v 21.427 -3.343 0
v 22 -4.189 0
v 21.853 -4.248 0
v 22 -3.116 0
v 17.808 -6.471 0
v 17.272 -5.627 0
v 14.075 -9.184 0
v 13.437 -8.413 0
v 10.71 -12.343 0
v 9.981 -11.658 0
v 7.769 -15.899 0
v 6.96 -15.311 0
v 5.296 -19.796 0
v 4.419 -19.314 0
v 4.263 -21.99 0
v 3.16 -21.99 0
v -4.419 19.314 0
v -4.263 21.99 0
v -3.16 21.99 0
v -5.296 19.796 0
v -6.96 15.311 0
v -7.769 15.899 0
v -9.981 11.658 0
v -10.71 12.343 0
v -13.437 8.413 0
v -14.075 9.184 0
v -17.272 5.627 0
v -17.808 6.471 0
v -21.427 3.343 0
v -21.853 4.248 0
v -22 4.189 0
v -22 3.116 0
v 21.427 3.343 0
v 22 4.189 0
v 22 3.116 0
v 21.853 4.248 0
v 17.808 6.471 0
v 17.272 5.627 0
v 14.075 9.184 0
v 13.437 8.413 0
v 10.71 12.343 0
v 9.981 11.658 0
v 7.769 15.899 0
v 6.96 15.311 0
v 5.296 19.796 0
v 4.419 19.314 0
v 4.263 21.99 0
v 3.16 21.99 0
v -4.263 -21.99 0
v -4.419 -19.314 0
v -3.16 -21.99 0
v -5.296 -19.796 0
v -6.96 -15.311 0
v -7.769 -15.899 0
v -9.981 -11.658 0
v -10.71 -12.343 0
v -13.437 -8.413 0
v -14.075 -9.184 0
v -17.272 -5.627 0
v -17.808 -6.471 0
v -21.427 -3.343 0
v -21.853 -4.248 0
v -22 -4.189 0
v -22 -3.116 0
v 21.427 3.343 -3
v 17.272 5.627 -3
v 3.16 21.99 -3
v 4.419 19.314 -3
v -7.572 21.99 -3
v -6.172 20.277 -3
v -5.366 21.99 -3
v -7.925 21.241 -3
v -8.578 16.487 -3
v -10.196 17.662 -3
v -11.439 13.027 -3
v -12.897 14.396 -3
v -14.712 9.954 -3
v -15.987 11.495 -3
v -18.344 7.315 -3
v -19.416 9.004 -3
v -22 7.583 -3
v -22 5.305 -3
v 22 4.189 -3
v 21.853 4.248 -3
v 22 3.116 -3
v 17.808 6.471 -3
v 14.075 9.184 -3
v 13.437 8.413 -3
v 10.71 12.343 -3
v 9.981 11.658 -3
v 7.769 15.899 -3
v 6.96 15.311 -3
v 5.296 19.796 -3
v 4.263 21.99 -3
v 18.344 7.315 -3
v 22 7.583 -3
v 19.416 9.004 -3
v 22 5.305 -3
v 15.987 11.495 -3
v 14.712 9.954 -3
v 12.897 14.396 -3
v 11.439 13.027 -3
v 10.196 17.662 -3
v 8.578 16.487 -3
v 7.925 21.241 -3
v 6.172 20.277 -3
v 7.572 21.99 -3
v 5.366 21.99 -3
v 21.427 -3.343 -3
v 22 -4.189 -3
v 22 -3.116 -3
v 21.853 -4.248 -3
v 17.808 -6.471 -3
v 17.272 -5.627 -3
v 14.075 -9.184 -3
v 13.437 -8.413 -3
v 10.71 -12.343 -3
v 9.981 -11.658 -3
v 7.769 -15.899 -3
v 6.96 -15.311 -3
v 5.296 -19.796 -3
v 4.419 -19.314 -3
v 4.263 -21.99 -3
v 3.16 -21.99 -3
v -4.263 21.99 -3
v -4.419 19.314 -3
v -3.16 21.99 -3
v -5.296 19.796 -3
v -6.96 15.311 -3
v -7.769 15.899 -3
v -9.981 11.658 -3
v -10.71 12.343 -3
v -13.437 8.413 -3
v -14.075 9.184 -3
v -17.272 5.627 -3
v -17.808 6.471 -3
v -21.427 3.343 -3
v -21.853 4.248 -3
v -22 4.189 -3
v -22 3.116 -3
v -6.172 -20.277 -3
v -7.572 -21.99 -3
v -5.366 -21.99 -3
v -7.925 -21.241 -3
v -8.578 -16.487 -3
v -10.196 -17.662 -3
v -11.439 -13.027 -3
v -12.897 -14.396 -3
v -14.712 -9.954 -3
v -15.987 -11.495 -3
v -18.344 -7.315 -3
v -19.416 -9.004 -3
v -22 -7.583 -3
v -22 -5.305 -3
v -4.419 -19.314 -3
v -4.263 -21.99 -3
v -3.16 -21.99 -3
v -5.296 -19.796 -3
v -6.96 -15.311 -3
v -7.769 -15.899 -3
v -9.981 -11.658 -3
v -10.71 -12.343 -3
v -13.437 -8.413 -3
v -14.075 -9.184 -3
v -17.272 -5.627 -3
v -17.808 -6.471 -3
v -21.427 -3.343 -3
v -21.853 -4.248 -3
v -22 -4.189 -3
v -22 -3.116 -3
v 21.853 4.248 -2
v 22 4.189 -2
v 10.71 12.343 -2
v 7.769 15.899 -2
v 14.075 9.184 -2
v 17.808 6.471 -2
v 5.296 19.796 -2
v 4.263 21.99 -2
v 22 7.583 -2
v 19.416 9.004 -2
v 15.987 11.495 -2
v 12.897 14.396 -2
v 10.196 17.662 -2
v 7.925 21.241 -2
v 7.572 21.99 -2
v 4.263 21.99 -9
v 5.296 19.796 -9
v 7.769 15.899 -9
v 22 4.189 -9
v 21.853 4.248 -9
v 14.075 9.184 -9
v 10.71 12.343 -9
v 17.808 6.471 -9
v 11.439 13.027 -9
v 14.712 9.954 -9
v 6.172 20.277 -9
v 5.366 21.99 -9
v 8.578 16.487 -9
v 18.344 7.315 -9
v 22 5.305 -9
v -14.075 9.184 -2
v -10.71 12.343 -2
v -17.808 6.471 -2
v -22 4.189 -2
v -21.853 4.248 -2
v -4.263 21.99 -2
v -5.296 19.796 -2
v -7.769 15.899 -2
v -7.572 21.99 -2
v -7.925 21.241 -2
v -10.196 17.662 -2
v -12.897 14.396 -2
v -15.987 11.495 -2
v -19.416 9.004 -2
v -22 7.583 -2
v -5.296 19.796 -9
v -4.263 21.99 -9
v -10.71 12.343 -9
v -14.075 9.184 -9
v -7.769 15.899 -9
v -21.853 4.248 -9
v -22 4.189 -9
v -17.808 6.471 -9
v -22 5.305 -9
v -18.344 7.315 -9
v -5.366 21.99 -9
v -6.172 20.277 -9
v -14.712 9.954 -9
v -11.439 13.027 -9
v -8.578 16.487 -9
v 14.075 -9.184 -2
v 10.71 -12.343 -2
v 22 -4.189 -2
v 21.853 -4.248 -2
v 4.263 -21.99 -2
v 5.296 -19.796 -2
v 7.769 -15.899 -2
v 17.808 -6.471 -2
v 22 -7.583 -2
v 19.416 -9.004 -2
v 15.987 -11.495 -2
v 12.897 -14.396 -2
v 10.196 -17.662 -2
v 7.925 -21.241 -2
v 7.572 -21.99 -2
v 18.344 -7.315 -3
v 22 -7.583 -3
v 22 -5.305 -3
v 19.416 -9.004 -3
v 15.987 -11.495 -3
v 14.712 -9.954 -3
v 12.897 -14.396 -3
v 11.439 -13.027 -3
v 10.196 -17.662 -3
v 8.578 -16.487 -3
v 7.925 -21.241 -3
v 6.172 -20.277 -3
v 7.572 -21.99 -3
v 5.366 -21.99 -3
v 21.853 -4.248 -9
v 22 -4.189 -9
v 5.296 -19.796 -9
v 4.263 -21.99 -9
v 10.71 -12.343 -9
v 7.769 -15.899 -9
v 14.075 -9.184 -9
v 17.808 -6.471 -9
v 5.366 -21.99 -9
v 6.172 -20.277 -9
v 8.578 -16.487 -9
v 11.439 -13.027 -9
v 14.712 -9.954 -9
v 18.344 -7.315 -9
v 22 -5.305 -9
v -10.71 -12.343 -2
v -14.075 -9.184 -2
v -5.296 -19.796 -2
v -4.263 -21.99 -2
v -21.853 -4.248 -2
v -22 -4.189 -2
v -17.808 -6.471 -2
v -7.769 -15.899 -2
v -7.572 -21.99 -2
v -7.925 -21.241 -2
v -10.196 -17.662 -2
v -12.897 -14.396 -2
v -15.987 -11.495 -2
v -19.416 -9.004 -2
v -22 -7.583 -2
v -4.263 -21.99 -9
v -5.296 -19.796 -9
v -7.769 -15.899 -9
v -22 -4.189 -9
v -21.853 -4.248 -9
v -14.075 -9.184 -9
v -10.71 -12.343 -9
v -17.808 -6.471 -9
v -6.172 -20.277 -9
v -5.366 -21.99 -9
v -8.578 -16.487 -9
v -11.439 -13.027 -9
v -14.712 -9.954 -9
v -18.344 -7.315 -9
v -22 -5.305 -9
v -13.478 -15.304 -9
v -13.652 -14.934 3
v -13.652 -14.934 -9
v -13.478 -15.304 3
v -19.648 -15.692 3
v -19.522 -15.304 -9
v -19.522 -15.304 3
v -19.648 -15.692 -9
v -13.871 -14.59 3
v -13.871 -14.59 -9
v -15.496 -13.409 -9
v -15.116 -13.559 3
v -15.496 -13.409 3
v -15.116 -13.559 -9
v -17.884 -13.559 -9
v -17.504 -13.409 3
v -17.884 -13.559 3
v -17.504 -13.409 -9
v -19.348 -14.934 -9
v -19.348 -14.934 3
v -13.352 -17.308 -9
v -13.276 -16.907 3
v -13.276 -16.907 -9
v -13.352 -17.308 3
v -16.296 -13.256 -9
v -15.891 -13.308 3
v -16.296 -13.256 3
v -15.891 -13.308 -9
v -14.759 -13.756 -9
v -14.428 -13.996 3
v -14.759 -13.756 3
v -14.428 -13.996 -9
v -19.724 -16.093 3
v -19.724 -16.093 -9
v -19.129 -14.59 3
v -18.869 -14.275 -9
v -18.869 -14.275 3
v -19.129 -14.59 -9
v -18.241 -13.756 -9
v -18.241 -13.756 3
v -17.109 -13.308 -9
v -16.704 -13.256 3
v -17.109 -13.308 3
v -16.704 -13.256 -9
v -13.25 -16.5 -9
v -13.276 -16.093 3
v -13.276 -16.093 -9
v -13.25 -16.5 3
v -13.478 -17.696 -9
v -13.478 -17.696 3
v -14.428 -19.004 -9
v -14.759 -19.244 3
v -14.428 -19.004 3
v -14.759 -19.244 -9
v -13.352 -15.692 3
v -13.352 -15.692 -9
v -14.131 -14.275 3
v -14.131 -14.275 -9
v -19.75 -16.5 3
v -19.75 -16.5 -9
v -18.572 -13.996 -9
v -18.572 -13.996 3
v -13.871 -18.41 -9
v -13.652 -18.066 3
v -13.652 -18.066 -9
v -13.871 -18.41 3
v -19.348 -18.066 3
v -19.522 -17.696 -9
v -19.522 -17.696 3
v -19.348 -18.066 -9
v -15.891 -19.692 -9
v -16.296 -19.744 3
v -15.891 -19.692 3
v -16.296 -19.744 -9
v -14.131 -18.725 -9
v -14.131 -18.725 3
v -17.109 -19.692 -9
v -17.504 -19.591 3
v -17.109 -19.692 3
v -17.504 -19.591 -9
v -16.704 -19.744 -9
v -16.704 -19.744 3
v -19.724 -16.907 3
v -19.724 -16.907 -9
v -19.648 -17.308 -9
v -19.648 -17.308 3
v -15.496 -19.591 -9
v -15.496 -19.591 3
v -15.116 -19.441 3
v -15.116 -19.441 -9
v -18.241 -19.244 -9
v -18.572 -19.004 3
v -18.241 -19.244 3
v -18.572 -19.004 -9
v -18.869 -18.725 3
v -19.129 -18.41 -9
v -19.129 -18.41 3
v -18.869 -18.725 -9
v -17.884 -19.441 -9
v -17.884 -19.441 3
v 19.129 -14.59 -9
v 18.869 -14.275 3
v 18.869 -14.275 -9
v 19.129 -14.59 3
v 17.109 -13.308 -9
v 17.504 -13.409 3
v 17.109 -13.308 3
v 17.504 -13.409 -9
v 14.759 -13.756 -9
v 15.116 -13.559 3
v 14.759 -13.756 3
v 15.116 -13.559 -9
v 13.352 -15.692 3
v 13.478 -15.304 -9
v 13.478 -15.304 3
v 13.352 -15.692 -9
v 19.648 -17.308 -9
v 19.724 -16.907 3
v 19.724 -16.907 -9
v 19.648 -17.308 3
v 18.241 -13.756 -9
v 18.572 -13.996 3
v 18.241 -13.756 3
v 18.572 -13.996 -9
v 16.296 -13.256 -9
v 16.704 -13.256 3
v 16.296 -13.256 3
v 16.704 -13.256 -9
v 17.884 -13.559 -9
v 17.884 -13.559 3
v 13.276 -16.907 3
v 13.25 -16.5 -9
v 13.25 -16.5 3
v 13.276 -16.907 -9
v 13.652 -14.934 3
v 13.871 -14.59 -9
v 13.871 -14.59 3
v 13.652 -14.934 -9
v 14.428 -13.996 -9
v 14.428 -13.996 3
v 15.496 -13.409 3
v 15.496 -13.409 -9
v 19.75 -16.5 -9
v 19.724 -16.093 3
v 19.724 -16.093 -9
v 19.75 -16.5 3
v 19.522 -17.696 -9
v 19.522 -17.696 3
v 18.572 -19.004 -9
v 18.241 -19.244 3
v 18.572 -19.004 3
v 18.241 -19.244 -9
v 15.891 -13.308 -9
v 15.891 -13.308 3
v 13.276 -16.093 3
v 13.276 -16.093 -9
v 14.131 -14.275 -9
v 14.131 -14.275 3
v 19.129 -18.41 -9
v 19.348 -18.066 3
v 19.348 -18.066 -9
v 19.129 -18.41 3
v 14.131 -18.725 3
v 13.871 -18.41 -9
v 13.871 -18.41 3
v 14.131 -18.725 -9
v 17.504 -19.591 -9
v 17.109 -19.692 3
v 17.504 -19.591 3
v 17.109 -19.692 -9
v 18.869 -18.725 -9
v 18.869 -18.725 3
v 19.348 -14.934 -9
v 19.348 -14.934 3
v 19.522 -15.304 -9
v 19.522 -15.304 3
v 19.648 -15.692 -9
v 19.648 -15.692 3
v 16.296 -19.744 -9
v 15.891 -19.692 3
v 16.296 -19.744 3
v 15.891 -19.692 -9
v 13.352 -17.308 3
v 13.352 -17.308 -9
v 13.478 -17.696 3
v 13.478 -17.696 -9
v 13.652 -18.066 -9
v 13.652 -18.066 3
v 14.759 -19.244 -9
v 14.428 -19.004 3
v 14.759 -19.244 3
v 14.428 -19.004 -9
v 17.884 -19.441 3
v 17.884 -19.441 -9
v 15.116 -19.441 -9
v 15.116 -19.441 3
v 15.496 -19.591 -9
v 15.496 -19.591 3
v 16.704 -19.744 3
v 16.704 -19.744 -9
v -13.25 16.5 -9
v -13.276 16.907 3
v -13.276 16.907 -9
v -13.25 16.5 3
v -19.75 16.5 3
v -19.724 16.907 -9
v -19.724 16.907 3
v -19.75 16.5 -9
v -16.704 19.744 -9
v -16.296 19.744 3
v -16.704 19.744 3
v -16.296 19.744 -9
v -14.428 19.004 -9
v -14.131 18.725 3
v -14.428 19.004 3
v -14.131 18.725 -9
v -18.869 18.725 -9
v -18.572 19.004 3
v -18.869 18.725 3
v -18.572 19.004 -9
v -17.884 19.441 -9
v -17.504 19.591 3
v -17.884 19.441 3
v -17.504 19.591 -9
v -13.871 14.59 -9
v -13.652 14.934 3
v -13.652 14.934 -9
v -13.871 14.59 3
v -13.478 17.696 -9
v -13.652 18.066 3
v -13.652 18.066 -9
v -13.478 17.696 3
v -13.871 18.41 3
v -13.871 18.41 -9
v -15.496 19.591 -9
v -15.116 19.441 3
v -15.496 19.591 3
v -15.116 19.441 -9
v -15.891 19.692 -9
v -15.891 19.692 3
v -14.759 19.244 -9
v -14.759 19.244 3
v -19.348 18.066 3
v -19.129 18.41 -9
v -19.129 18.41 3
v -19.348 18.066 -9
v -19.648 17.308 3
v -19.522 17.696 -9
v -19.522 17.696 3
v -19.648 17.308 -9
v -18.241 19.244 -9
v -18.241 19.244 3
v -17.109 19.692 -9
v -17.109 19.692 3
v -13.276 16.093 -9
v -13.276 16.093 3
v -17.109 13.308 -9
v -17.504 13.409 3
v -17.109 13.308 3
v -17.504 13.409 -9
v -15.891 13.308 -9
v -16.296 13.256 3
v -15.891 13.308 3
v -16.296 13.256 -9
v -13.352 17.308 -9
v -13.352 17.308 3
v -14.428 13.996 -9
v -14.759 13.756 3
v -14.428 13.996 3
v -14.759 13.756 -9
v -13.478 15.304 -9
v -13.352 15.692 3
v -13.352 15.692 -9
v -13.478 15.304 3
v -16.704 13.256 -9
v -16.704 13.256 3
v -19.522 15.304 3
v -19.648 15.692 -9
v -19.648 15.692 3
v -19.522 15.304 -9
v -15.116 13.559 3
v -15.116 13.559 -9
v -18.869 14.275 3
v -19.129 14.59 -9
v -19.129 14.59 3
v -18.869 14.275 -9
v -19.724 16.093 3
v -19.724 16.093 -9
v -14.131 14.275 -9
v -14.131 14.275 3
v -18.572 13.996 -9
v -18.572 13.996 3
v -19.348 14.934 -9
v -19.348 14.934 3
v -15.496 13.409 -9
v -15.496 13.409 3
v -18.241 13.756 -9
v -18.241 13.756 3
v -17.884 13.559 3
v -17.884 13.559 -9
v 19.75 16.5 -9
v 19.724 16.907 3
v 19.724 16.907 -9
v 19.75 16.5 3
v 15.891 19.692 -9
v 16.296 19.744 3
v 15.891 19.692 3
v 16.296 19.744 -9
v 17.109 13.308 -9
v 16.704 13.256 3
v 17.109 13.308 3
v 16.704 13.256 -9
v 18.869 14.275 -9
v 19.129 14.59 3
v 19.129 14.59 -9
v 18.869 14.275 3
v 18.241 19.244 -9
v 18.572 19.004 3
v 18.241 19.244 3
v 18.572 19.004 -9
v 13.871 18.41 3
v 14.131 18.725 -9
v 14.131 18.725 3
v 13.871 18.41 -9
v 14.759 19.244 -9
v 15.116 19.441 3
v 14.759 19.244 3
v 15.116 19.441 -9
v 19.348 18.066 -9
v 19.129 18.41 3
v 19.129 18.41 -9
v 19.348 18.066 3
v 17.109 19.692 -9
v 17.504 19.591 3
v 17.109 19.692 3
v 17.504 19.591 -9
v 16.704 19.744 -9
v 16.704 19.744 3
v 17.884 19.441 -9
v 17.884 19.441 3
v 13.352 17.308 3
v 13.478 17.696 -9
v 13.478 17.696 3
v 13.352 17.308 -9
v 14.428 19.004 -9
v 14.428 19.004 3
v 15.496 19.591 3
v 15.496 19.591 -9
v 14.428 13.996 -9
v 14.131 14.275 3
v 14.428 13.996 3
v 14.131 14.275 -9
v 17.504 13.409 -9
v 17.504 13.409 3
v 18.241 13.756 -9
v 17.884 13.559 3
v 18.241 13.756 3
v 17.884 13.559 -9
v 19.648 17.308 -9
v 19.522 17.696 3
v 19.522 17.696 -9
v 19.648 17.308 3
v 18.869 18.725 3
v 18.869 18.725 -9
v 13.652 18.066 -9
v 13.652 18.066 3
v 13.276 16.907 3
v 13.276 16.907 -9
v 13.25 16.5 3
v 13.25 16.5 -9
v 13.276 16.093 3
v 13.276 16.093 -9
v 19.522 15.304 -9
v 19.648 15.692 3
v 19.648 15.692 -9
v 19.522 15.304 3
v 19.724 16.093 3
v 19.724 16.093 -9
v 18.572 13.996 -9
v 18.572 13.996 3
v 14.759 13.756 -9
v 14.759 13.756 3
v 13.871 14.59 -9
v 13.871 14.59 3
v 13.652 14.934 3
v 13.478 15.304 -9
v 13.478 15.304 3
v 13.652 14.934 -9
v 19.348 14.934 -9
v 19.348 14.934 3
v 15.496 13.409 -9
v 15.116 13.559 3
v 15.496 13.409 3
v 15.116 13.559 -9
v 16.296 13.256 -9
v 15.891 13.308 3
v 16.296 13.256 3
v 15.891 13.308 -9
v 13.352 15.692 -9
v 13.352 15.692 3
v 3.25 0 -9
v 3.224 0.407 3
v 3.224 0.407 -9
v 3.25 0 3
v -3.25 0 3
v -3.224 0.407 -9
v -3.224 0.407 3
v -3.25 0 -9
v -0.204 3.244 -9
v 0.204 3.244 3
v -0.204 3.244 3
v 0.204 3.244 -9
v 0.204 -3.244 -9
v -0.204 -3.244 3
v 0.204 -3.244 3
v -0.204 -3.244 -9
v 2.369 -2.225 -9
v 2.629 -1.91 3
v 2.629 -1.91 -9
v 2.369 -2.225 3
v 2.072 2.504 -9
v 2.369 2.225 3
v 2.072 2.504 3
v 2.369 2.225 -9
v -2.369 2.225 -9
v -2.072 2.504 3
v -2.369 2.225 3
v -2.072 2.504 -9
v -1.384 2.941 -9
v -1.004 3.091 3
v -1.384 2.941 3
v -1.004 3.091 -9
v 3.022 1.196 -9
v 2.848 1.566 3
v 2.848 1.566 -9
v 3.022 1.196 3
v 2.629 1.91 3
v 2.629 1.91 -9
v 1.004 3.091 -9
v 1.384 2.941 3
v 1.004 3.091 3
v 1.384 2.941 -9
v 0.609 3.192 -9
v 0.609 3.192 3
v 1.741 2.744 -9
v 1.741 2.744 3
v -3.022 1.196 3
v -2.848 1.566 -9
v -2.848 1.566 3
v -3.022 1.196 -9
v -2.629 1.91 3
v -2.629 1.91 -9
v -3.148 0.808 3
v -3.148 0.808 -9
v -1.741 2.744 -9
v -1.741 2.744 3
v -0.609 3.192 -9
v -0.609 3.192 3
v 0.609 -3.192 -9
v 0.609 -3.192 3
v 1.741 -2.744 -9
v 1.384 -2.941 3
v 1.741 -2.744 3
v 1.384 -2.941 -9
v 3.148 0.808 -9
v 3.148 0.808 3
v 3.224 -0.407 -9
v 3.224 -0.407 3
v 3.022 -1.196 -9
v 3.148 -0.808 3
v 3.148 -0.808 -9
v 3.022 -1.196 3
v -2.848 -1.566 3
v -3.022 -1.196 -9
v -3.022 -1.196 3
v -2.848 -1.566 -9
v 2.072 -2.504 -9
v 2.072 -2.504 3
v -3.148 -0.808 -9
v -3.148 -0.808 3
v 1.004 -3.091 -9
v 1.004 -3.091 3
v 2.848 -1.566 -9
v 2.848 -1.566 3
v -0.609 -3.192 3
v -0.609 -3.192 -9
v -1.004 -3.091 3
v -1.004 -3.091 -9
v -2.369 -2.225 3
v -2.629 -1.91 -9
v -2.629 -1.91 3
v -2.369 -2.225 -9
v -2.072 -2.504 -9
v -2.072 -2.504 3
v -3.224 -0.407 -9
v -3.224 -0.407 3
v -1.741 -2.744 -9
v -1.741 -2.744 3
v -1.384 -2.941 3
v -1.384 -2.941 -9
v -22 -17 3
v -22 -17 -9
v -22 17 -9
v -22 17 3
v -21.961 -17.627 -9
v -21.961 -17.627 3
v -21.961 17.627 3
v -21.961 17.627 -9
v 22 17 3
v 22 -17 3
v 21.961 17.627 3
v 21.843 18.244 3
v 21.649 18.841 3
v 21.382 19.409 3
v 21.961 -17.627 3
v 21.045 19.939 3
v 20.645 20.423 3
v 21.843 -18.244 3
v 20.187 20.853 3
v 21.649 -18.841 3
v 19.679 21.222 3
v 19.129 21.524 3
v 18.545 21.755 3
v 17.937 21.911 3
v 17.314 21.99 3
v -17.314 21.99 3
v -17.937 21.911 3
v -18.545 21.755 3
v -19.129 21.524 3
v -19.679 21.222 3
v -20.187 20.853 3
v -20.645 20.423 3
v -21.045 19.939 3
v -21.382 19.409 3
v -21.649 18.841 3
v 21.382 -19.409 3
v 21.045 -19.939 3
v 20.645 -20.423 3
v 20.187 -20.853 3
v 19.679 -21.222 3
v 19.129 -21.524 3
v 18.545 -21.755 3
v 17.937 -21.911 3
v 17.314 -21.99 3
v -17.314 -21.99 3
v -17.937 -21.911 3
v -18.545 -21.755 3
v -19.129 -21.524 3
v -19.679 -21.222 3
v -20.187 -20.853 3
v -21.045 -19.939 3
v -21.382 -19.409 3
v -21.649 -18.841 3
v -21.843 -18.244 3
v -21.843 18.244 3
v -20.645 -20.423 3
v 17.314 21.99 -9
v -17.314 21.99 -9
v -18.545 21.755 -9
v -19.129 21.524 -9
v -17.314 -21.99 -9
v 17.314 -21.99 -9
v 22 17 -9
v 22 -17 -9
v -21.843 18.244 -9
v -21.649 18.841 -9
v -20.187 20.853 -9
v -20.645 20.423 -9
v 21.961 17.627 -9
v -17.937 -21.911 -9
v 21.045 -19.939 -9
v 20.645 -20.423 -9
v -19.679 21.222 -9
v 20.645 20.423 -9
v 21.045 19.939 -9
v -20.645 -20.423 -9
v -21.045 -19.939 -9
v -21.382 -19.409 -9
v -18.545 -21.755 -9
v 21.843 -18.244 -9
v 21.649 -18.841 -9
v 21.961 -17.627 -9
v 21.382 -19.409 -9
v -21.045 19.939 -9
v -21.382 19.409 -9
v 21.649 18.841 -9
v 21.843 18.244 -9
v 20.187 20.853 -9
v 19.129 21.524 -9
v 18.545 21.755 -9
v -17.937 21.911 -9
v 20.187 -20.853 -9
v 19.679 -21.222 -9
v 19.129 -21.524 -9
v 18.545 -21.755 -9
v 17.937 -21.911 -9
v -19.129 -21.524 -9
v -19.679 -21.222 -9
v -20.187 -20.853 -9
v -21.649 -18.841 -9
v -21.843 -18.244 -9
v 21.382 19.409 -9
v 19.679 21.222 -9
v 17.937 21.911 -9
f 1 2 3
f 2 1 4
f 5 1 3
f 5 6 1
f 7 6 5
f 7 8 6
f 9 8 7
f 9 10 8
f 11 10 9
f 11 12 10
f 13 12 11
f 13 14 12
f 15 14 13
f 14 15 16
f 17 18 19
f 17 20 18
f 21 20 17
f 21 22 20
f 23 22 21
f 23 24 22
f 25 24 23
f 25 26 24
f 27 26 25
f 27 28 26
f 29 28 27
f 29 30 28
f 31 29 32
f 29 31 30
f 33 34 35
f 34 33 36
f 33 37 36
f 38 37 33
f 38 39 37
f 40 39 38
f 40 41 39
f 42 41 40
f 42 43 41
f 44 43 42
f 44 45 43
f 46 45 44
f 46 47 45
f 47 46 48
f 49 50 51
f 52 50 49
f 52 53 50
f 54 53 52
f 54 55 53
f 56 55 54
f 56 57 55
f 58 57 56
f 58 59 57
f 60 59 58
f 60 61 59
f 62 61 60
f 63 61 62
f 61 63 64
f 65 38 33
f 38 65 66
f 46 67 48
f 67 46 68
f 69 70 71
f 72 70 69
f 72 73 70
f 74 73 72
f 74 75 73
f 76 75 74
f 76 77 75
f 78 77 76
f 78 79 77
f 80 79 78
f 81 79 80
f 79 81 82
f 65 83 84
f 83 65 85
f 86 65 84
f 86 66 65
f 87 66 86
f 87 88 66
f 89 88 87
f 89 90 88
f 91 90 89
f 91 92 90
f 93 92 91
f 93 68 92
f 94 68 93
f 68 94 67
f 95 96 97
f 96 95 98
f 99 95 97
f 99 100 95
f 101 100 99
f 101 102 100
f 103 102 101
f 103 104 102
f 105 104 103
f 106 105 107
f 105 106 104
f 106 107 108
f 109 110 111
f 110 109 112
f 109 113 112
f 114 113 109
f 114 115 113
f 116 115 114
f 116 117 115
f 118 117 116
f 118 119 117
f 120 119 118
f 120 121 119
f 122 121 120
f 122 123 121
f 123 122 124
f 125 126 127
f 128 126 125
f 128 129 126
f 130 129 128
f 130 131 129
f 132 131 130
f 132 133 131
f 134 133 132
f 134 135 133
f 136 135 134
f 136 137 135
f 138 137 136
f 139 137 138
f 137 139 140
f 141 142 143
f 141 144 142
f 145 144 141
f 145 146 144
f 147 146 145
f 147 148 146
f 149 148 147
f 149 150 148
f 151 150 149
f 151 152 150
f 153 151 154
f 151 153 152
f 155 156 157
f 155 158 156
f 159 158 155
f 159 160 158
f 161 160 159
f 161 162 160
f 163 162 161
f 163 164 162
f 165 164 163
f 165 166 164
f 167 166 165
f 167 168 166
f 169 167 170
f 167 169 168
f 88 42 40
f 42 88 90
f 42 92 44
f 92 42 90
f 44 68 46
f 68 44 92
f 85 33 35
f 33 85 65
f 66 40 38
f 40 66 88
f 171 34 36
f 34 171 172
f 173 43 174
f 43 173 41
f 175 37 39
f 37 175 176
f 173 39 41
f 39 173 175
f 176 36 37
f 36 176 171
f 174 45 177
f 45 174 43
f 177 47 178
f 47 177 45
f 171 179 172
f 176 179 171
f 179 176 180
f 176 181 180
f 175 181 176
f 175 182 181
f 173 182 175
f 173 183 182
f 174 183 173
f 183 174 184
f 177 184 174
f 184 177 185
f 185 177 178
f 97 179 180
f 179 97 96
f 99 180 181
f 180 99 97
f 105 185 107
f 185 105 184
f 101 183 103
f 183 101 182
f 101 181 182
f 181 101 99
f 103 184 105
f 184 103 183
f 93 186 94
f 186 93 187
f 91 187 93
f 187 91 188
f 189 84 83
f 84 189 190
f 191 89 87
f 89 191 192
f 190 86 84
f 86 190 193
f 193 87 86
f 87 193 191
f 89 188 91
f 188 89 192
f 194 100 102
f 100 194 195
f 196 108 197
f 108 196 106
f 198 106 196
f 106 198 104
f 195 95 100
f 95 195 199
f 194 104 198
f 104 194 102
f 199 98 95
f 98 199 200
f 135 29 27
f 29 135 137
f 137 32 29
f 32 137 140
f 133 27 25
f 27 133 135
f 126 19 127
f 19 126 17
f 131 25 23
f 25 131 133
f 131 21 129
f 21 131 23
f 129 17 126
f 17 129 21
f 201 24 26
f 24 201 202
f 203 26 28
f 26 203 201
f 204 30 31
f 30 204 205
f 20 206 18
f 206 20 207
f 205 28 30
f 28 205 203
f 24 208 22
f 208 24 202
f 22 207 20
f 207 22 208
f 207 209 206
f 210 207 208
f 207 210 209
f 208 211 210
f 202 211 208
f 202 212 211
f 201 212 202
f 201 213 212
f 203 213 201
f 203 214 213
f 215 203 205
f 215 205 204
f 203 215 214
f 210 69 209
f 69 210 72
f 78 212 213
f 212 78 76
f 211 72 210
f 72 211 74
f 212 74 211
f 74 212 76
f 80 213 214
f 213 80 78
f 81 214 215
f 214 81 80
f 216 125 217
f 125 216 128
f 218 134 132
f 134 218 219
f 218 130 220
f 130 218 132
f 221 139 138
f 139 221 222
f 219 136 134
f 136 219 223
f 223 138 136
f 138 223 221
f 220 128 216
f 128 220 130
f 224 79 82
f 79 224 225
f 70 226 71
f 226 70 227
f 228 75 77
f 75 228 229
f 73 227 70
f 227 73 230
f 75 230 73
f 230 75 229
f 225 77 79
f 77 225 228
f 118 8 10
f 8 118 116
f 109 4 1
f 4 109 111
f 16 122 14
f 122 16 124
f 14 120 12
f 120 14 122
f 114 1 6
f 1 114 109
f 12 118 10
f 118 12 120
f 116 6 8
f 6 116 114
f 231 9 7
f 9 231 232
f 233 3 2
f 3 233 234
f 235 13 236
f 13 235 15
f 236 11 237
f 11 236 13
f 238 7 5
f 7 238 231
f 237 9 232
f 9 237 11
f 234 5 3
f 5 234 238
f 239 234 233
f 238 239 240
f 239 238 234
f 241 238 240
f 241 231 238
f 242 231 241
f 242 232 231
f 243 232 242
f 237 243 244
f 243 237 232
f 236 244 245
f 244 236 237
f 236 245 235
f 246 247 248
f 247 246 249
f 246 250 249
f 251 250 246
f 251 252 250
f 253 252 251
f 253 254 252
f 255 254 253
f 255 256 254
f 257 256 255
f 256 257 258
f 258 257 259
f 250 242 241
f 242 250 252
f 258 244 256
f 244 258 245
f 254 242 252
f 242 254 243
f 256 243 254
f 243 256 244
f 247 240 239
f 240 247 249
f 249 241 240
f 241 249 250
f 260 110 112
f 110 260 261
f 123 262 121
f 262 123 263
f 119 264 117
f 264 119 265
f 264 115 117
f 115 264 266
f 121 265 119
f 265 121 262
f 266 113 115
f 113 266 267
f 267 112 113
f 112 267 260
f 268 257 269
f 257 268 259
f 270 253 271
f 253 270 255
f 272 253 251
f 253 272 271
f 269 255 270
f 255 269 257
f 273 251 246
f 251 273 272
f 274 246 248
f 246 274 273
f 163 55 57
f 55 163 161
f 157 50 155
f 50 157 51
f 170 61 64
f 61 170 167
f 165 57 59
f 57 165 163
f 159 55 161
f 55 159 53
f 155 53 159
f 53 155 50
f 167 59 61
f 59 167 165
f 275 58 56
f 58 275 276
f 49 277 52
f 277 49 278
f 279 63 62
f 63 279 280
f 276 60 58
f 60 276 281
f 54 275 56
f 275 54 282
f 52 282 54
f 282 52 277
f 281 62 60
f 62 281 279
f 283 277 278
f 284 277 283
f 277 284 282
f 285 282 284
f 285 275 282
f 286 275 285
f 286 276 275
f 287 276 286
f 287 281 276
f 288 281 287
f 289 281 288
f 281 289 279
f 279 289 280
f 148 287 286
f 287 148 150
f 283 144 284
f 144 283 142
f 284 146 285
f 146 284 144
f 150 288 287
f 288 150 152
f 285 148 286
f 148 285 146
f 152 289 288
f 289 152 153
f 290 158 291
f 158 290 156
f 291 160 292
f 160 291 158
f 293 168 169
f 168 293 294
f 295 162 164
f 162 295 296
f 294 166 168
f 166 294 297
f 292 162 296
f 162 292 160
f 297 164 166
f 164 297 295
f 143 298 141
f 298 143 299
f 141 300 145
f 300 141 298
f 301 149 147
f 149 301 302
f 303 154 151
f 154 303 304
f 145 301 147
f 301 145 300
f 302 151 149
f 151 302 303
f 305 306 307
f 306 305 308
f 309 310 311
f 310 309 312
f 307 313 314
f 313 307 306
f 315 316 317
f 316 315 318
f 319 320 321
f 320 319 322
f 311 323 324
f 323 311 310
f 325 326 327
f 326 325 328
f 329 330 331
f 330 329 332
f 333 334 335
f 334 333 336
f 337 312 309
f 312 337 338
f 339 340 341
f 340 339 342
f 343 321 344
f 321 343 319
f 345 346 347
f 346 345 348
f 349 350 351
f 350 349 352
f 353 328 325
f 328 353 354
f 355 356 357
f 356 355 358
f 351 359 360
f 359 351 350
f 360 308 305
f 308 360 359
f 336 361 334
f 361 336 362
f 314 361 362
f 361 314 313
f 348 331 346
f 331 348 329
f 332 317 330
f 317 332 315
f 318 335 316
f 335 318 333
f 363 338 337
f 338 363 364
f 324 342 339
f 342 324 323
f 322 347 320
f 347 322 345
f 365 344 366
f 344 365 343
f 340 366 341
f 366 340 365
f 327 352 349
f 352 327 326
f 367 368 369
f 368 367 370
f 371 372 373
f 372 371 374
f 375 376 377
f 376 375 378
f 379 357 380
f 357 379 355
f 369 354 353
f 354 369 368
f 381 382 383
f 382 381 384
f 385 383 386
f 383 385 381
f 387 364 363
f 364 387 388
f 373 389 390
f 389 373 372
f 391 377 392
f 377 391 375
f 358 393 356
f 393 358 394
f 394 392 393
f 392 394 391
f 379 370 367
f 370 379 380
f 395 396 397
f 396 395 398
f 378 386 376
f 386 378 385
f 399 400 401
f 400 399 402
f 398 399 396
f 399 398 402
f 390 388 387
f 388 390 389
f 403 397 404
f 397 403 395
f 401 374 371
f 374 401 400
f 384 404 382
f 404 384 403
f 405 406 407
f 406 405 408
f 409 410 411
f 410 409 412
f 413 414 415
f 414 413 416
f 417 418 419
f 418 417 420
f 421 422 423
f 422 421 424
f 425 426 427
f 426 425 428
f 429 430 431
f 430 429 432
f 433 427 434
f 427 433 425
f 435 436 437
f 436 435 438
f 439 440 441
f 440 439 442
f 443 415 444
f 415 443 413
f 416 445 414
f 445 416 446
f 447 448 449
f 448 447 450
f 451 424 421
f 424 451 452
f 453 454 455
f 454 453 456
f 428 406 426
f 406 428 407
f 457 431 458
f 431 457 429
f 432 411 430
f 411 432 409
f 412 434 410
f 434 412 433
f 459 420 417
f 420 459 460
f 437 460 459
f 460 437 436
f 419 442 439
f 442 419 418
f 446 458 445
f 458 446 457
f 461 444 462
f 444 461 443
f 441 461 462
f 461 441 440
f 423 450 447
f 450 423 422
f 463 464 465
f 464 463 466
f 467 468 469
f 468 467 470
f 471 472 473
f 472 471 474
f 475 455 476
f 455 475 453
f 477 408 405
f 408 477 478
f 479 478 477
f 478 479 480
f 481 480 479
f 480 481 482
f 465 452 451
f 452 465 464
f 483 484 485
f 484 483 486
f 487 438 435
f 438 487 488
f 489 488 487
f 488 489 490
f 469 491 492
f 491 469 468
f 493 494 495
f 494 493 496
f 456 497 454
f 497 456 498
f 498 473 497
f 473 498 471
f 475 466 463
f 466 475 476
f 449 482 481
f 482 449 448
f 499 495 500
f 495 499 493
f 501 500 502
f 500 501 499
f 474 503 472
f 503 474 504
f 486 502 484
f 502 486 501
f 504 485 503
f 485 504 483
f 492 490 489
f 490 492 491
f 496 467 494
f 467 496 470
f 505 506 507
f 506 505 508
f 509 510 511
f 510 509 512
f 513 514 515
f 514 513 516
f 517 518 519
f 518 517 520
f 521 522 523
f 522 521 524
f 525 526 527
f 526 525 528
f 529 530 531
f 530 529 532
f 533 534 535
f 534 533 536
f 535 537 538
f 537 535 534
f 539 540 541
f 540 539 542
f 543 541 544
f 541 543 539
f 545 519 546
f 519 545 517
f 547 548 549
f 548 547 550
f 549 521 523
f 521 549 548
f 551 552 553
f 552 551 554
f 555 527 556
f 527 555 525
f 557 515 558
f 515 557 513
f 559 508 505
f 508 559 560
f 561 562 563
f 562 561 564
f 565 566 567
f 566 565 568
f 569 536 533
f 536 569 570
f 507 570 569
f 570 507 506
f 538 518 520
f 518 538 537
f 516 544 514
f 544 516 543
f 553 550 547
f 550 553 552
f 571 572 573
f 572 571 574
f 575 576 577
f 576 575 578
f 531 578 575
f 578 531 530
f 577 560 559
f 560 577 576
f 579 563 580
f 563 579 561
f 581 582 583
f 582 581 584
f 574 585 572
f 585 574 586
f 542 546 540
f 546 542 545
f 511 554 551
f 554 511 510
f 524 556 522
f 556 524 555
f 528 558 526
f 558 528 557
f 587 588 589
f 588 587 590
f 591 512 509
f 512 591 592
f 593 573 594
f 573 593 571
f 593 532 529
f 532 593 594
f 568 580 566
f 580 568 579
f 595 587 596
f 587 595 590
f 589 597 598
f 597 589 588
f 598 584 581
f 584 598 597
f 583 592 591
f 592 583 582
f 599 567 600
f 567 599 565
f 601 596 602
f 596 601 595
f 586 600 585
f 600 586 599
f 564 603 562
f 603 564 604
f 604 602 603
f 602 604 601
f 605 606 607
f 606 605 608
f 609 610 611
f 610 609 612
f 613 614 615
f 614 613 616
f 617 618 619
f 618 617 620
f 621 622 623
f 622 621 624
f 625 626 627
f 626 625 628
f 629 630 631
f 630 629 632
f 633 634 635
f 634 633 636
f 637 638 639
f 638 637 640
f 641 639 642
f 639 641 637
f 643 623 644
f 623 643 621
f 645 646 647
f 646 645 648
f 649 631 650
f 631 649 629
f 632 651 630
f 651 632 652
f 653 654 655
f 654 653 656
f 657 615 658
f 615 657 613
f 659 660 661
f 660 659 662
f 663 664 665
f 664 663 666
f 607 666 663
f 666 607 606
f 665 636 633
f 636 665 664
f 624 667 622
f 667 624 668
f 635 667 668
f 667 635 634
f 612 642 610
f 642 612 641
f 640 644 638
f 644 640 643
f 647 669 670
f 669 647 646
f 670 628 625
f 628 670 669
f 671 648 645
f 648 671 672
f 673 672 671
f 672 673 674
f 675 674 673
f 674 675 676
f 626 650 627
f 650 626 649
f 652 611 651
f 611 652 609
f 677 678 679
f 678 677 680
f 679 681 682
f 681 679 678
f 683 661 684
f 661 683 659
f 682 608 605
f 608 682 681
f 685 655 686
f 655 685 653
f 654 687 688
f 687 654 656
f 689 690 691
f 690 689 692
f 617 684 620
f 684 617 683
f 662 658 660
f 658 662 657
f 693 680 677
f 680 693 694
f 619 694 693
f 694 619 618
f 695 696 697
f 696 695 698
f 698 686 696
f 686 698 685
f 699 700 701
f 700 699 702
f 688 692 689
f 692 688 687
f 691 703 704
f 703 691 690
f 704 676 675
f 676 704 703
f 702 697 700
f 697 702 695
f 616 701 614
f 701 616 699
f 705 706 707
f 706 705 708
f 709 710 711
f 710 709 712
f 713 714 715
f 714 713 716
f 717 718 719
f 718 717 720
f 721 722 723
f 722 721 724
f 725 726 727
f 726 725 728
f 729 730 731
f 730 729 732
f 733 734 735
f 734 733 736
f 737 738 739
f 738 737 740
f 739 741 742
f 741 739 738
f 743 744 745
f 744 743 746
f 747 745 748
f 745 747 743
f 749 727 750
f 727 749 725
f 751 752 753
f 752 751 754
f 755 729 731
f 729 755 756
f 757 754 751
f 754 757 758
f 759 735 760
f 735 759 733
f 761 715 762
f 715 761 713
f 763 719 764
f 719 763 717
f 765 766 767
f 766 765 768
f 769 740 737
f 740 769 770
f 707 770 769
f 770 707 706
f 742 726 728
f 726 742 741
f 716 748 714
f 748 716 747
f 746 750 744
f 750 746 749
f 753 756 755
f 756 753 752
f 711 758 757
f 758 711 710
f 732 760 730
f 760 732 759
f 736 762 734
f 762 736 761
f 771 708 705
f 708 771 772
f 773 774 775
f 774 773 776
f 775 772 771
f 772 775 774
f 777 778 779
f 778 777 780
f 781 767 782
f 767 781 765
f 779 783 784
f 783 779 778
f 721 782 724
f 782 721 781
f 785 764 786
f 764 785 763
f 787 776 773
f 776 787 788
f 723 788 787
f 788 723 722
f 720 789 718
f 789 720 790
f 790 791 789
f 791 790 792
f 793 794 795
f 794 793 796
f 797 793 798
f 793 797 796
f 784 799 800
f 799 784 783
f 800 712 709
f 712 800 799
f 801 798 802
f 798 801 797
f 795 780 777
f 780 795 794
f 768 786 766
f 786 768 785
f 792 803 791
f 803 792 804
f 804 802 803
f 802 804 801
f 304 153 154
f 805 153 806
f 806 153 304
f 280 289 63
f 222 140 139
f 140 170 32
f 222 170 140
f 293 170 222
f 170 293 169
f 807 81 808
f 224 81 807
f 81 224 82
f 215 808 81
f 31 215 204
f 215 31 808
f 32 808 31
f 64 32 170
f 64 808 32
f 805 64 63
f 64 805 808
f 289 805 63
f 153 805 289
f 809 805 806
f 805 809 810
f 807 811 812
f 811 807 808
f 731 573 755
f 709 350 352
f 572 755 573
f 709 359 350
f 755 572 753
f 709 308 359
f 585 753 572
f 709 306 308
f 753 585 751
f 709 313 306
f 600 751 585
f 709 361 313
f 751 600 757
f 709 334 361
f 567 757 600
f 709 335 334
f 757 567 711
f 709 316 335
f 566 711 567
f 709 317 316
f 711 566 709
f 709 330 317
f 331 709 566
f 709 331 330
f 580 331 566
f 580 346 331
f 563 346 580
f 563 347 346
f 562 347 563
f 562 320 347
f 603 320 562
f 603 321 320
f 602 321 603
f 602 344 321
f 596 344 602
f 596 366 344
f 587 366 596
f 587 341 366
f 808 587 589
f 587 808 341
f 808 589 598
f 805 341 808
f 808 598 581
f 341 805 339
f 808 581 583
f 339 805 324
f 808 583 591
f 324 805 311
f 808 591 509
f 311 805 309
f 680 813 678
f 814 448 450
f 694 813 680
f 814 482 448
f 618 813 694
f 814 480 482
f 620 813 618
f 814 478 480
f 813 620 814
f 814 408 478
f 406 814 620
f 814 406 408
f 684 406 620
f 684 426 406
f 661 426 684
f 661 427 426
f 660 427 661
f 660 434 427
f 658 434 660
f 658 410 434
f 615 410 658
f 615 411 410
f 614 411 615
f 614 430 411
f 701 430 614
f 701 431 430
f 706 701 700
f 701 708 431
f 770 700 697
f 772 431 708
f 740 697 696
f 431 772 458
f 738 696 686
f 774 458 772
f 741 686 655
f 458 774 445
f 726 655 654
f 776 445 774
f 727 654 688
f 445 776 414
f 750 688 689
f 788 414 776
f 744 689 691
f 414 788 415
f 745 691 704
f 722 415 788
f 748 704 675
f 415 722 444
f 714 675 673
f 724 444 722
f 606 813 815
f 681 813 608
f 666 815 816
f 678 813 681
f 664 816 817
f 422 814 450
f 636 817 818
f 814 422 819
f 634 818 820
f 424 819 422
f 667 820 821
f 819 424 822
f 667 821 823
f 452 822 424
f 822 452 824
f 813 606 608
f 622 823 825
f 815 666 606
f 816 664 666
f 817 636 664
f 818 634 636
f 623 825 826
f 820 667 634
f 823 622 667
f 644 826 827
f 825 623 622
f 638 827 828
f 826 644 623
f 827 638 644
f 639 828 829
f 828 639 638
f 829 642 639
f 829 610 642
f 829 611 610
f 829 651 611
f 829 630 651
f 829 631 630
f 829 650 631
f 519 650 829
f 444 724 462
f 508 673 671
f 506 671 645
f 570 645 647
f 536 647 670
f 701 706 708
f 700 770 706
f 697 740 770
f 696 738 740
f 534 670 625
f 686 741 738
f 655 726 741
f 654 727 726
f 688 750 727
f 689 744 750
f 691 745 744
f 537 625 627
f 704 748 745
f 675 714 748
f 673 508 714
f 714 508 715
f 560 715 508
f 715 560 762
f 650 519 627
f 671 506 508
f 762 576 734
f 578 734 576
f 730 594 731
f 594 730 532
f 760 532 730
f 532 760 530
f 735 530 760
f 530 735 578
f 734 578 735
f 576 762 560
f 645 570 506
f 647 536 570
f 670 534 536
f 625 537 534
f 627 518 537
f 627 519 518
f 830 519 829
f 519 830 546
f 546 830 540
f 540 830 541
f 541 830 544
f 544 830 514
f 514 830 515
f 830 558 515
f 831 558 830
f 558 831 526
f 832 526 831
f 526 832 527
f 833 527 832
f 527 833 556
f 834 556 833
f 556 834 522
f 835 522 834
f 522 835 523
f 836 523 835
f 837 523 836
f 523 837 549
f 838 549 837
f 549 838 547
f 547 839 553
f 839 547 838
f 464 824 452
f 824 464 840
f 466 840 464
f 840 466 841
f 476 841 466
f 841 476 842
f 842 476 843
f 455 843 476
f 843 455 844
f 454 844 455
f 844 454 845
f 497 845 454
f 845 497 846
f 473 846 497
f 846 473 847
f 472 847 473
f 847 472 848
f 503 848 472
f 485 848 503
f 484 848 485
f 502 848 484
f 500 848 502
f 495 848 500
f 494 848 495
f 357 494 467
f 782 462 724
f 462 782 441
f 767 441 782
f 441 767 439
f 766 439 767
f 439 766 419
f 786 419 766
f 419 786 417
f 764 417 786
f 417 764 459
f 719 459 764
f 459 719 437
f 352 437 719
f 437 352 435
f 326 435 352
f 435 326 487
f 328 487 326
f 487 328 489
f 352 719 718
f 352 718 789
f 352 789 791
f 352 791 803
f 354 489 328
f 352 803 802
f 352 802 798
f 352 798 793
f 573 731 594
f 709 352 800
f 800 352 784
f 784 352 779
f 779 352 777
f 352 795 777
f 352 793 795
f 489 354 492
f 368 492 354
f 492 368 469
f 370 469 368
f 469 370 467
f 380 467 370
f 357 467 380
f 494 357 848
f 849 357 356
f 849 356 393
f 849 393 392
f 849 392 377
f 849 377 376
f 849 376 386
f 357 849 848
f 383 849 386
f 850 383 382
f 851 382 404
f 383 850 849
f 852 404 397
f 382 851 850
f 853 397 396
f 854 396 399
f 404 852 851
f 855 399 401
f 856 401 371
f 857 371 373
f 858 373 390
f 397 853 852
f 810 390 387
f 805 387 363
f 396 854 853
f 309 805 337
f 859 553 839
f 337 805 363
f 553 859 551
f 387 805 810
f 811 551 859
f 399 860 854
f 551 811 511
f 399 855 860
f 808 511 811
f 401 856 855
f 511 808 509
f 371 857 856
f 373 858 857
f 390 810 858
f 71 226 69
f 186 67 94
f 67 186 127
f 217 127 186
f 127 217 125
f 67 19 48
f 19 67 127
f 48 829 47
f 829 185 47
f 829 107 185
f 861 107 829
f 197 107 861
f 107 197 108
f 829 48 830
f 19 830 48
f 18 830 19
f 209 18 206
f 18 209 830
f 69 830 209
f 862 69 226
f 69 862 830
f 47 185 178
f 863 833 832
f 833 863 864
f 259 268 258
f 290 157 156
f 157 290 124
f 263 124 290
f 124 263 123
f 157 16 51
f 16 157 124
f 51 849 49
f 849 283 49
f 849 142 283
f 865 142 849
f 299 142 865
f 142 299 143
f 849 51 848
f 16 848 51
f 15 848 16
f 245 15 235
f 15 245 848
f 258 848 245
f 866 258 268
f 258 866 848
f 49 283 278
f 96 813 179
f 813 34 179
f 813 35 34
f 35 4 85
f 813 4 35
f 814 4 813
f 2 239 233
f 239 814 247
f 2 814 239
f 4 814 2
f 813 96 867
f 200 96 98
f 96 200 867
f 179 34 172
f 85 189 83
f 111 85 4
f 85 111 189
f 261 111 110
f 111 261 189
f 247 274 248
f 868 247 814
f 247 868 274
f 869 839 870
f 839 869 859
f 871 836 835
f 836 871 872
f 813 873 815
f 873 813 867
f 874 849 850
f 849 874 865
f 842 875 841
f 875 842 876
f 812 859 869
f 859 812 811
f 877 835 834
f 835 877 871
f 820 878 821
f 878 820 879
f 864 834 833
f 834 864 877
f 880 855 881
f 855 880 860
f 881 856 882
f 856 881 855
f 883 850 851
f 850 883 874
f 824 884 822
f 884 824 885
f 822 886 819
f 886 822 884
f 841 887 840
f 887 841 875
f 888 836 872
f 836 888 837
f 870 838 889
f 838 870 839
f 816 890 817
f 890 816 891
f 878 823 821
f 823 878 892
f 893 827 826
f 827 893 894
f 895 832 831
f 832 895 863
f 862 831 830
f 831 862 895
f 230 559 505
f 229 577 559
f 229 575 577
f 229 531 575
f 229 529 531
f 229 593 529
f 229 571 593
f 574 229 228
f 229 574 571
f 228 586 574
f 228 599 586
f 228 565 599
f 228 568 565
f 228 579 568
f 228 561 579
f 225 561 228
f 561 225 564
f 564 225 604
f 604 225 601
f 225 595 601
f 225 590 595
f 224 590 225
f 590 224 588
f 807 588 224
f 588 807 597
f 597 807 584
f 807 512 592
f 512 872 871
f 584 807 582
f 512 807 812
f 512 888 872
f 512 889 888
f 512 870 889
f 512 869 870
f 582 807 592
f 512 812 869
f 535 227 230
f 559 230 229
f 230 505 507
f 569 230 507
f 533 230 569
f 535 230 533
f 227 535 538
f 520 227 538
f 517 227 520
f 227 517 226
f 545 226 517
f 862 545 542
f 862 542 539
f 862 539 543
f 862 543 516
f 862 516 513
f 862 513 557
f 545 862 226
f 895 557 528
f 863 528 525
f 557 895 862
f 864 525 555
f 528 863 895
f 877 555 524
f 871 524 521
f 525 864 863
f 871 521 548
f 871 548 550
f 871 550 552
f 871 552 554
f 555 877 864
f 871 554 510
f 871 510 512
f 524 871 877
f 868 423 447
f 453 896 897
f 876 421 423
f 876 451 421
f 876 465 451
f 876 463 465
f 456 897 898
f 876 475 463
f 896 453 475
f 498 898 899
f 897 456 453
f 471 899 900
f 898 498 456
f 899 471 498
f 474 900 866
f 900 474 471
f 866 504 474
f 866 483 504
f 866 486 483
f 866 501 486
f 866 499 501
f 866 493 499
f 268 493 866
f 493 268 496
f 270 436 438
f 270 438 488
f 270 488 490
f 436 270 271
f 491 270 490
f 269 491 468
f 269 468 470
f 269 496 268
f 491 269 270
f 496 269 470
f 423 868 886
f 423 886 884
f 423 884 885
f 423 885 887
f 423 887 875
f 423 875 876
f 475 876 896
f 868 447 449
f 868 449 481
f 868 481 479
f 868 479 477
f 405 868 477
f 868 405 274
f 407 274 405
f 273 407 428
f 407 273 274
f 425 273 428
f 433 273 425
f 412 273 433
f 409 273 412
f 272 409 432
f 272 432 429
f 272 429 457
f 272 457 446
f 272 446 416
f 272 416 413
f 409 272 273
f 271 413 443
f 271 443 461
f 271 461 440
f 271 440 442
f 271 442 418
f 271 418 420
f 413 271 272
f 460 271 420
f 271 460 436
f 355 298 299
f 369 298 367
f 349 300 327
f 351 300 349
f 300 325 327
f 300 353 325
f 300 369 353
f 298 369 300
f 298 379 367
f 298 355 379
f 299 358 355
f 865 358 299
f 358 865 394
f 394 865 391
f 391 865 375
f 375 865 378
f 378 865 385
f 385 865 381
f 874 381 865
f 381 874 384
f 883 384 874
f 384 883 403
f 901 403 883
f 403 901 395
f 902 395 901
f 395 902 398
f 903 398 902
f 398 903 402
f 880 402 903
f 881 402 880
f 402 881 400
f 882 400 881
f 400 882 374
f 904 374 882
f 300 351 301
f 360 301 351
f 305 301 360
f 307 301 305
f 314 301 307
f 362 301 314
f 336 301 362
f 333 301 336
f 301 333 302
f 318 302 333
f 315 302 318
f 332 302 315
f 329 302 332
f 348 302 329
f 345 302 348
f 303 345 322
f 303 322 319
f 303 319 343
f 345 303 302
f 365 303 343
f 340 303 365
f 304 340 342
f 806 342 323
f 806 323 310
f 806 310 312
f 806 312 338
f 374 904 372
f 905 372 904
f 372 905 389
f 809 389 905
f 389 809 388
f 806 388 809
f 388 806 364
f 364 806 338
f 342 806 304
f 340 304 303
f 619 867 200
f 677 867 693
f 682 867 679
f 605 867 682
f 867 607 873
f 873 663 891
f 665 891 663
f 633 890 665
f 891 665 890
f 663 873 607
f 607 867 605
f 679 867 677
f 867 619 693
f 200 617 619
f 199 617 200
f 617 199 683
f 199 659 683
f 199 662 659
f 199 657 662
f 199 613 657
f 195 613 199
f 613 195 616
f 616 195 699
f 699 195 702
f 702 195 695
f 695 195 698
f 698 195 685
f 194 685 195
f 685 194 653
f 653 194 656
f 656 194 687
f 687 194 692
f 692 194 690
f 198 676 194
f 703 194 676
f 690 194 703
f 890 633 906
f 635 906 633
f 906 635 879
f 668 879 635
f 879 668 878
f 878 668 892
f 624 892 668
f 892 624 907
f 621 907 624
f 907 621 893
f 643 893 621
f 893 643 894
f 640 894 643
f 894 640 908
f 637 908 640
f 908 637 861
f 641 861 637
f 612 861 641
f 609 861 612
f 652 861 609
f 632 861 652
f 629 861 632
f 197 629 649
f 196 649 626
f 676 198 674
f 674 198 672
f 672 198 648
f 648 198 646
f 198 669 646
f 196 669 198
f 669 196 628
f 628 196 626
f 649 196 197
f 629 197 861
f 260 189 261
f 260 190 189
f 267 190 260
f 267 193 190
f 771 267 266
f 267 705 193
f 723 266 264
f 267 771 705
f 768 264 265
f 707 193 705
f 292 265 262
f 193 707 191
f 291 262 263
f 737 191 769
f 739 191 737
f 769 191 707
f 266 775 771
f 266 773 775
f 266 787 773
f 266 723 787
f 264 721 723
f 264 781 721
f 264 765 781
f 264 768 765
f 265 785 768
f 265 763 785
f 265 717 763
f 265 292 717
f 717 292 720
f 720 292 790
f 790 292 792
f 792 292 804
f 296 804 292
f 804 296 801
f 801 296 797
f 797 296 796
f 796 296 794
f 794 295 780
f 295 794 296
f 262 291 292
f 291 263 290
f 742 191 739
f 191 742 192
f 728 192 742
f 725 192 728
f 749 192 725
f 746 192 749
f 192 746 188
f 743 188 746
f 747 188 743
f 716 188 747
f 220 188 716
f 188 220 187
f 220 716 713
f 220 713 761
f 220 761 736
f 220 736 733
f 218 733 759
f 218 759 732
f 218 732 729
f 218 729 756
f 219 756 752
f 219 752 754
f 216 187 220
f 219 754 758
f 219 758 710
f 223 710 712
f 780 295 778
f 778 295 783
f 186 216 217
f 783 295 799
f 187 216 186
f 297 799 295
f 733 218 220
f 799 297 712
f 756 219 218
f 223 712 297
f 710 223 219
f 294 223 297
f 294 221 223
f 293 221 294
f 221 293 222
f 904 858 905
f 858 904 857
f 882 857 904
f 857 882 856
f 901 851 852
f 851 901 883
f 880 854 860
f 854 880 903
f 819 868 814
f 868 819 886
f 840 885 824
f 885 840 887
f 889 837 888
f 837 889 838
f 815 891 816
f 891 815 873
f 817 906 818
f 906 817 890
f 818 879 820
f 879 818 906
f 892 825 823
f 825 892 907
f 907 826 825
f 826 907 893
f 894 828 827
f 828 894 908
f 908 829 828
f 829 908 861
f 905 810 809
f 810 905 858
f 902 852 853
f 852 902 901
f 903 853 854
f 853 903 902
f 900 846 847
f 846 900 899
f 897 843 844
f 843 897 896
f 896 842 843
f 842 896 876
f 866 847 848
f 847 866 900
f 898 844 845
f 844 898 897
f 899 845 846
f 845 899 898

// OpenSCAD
$fn = 50;


difference() {
	union() {
		translate(v = [0, 0, -9]) {
			hull() {
				translate(v = [-17.0000000000, 17.0000000000, 0]) {
					cylinder(h = 12, r = 5);
				}
				translate(v = [17.0000000000, 17.0000000000, 0]) {
					cylinder(h = 12, r = 5);
				}
				translate(v = [-17.0000000000, -17.0000000000, 0]) {
					cylinder(h = 12, r = 5);
				}
				translate(v = [17.0000000000, -17.0000000000, 0]) {
					cylinder(h = 12, r = 5);
				}
			}
		}
	}
	union() {
		translate(v = [37.5000000000, 37.5000000000, -3]) {
			rotate(a = [0, 0, 0]) {
				difference() {
					union() {
						cylinder(h = 3, r = 37.7500000000);
					}
					union() {
						cylinder(h = 3, r = 36.7500000000);
					}
				}
			}
		}
		translate(v = [37.5000000000, 37.5000000000, -3]) {
			rotate(a = [0, 0, 0]) {
				difference() {
					union() {
						cylinder(h = 1, r = 36.7500000000);
					}
					union() {
						cylinder(h = 1, r = 33.7500000000);
					}
				}
			}
		}
		translate(v = [37.5000000000, 37.5000000000, -106]) {
			rotate(a = [0, 0, 0]) {
				difference() {
					union() {
						cylinder(h = 103, r = 36.7500000000);
					}
					union() {
						cylinder(h = 103, r = 35.7500000000);
					}
				}
			}
		}
		translate(v = [37.5000000000, 37.5000000000, -109]) {
			rotate(a = [0, 0, 0]) {
				difference() {
					union() {
						cylinder(h = 3, r = 36.7500000000);
					}
					union() {
						cylinder(h = 3, r = 35.7500000000);
					}
				}
			}
		}
		translate(v = [-37.5000000000, 37.5000000000, -3]) {
			rotate(a = [0, 0, 0]) {
				difference() {
					union() {
						cylinder(h = 3, r = 37.7500000000);
					}
					union() {
						cylinder(h = 3, r = 36.7500000000);
					}
				}
			}
		}
		translate(v = [-37.5000000000, 37.5000000000, -3]) {
			rotate(a = [0, 0, 0]) {
				difference() {
					union() {
						cylinder(h = 1, r = 36.7500000000);
					}
					union() {
						cylinder(h = 1, r = 33.7500000000);
					}
				}
			}
		}
		translate(v = [-37.5000000000, 37.5000000000, -106]) {
			rotate(a = [0, 0, 0]) {
				difference() {
					union() {
						cylinder(h = 103, r = 36.7500000000);
					}
					union() {
						cylinder(h = 103, r = 35.7500000000);
					}
				}
			}
		}
		translate(v = [-37.5000000000, 37.5000000000, -109]) {
			rotate(a = [0, 0, 0]) {
				difference() {
					union() {
						cylinder(h = 3, r = 36.7500000000);
					}
					union() {
						cylinder(h = 3, r = 35.7500000000);
					}
				}
			}
		}
		translate(v = [37.5000000000, -37.5000000000, -3]) {
			rotate(a = [0, 0, 0]) {
				difference() {
					union() {
						cylinder(h = 3, r = 37.7500000000);
					}
					union() {
						cylinder(h = 3, r = 36.7500000000);
					}
				}
			}
		}
		translate(v = [37.5000000000, -37.5000000000, -3]) {
			rotate(a = [0, 0, 0]) {
				difference() {
					union() {
						cylinder(h = 1, r = 36.7500000000);
					}
					union() {
						cylinder(h = 1, r = 33.7500000000);
					}
				}
			}
		}
		translate(v = [37.5000000000, -37.5000000000, -106]) {
			rotate(a = [0, 0, 0]) {
				difference() {
					union() {
						cylinder(h = 103, r = 36.7500000000);
					}
					union() {
						cylinder(h = 103, r = 35.7500000000);
					}
				}
			}
		}
		translate(v = [37.5000000000, -37.5000000000, -109]) {
			rotate(a = [0, 0, 0]) {
				difference() {
					union() {
						cylinder(h = 3, r = 36.7500000000);
					}
					union() {
						cylinder(h = 3, r = 35.7500000000);
					}
				}
			}
		}
		translate(v = [-37.5000000000, -37.5000000000, -3]) {
			rotate(a = [0, 0, 0]) {
				difference() {
					union() {
						cylinder(h = 3, r = 37.7500000000);
					}
					union() {
						cylinder(h = 3, r = 36.7500000000);
					}
				}
			}
		}
		translate(v = [-37.5000000000, -37.5000000000, -3]) {
			rotate(a = [0, 0, 0]) {
				difference() {
					union() {
						cylinder(h = 1, r = 36.7500000000);
					}
					union() {
						cylinder(h = 1, r = 33.7500000000);
					}
				}
			}
		}
		translate(v = [-37.5000000000, -37.5000000000, -106]) {
			rotate(a = [0, 0, 0]) {
				difference() {
					union() {
						cylinder(h = 103, r = 36.7500000000);
					}
					union() {
						cylinder(h = 103, r = 35.7500000000);
					}
				}
			}
		}
		translate(v = [-37.5000000000, -37.5000000000, -109]) {
			rotate(a = [0, 0, 0]) {
				difference() {
					union() {
						cylinder(h = 3, r = 36.7500000000);
					}
					union() {
						cylinder(h = 3, r = 35.7500000000);
					}
				}
			}
		}
		translate(v = [37.5000000000, 37.5000000000, -106.5000000000]) {
			cylinder(h = 1, r = 36.7500000000);
		}
		translate(v = [-37.5000000000, 37.5000000000, -106.5000000000]) {
			cylinder(h = 1, r = 36.7500000000);
		}
		translate(v = [37.5000000000, -37.5000000000, -106.5000000000]) {
			cylinder(h = 1, r = 36.7500000000);
		}
		translate(v = [-37.5000000000, -37.5000000000, -106.5000000000]) {
			cylinder(h = 1, r = 36.7500000000);
		}
		translate(v = [-16.5000000000, -16.5000000000, -125.0000000000]) {
			cylinder(h = 250, r = 3.2500000000);
		}
		translate(v = [16.5000000000, -16.5000000000, -125.0000000000]) {
			cylinder(h = 250, r = 3.2500000000);
		}
		translate(v = [-16.5000000000, 16.5000000000, -125.0000000000]) {
			cylinder(h = 250, r = 3.2500000000);
		}
		translate(v = [16.5000000000, 16.5000000000, -125.0000000000]) {
			cylinder(h = 250, r = 3.2500000000);
		}
		translate(v = [0.0000000000, 0.0000000000, -125.0000000000]) {
			cylinder(h = 250, r = 3.2500000000);
		}
	}
}
